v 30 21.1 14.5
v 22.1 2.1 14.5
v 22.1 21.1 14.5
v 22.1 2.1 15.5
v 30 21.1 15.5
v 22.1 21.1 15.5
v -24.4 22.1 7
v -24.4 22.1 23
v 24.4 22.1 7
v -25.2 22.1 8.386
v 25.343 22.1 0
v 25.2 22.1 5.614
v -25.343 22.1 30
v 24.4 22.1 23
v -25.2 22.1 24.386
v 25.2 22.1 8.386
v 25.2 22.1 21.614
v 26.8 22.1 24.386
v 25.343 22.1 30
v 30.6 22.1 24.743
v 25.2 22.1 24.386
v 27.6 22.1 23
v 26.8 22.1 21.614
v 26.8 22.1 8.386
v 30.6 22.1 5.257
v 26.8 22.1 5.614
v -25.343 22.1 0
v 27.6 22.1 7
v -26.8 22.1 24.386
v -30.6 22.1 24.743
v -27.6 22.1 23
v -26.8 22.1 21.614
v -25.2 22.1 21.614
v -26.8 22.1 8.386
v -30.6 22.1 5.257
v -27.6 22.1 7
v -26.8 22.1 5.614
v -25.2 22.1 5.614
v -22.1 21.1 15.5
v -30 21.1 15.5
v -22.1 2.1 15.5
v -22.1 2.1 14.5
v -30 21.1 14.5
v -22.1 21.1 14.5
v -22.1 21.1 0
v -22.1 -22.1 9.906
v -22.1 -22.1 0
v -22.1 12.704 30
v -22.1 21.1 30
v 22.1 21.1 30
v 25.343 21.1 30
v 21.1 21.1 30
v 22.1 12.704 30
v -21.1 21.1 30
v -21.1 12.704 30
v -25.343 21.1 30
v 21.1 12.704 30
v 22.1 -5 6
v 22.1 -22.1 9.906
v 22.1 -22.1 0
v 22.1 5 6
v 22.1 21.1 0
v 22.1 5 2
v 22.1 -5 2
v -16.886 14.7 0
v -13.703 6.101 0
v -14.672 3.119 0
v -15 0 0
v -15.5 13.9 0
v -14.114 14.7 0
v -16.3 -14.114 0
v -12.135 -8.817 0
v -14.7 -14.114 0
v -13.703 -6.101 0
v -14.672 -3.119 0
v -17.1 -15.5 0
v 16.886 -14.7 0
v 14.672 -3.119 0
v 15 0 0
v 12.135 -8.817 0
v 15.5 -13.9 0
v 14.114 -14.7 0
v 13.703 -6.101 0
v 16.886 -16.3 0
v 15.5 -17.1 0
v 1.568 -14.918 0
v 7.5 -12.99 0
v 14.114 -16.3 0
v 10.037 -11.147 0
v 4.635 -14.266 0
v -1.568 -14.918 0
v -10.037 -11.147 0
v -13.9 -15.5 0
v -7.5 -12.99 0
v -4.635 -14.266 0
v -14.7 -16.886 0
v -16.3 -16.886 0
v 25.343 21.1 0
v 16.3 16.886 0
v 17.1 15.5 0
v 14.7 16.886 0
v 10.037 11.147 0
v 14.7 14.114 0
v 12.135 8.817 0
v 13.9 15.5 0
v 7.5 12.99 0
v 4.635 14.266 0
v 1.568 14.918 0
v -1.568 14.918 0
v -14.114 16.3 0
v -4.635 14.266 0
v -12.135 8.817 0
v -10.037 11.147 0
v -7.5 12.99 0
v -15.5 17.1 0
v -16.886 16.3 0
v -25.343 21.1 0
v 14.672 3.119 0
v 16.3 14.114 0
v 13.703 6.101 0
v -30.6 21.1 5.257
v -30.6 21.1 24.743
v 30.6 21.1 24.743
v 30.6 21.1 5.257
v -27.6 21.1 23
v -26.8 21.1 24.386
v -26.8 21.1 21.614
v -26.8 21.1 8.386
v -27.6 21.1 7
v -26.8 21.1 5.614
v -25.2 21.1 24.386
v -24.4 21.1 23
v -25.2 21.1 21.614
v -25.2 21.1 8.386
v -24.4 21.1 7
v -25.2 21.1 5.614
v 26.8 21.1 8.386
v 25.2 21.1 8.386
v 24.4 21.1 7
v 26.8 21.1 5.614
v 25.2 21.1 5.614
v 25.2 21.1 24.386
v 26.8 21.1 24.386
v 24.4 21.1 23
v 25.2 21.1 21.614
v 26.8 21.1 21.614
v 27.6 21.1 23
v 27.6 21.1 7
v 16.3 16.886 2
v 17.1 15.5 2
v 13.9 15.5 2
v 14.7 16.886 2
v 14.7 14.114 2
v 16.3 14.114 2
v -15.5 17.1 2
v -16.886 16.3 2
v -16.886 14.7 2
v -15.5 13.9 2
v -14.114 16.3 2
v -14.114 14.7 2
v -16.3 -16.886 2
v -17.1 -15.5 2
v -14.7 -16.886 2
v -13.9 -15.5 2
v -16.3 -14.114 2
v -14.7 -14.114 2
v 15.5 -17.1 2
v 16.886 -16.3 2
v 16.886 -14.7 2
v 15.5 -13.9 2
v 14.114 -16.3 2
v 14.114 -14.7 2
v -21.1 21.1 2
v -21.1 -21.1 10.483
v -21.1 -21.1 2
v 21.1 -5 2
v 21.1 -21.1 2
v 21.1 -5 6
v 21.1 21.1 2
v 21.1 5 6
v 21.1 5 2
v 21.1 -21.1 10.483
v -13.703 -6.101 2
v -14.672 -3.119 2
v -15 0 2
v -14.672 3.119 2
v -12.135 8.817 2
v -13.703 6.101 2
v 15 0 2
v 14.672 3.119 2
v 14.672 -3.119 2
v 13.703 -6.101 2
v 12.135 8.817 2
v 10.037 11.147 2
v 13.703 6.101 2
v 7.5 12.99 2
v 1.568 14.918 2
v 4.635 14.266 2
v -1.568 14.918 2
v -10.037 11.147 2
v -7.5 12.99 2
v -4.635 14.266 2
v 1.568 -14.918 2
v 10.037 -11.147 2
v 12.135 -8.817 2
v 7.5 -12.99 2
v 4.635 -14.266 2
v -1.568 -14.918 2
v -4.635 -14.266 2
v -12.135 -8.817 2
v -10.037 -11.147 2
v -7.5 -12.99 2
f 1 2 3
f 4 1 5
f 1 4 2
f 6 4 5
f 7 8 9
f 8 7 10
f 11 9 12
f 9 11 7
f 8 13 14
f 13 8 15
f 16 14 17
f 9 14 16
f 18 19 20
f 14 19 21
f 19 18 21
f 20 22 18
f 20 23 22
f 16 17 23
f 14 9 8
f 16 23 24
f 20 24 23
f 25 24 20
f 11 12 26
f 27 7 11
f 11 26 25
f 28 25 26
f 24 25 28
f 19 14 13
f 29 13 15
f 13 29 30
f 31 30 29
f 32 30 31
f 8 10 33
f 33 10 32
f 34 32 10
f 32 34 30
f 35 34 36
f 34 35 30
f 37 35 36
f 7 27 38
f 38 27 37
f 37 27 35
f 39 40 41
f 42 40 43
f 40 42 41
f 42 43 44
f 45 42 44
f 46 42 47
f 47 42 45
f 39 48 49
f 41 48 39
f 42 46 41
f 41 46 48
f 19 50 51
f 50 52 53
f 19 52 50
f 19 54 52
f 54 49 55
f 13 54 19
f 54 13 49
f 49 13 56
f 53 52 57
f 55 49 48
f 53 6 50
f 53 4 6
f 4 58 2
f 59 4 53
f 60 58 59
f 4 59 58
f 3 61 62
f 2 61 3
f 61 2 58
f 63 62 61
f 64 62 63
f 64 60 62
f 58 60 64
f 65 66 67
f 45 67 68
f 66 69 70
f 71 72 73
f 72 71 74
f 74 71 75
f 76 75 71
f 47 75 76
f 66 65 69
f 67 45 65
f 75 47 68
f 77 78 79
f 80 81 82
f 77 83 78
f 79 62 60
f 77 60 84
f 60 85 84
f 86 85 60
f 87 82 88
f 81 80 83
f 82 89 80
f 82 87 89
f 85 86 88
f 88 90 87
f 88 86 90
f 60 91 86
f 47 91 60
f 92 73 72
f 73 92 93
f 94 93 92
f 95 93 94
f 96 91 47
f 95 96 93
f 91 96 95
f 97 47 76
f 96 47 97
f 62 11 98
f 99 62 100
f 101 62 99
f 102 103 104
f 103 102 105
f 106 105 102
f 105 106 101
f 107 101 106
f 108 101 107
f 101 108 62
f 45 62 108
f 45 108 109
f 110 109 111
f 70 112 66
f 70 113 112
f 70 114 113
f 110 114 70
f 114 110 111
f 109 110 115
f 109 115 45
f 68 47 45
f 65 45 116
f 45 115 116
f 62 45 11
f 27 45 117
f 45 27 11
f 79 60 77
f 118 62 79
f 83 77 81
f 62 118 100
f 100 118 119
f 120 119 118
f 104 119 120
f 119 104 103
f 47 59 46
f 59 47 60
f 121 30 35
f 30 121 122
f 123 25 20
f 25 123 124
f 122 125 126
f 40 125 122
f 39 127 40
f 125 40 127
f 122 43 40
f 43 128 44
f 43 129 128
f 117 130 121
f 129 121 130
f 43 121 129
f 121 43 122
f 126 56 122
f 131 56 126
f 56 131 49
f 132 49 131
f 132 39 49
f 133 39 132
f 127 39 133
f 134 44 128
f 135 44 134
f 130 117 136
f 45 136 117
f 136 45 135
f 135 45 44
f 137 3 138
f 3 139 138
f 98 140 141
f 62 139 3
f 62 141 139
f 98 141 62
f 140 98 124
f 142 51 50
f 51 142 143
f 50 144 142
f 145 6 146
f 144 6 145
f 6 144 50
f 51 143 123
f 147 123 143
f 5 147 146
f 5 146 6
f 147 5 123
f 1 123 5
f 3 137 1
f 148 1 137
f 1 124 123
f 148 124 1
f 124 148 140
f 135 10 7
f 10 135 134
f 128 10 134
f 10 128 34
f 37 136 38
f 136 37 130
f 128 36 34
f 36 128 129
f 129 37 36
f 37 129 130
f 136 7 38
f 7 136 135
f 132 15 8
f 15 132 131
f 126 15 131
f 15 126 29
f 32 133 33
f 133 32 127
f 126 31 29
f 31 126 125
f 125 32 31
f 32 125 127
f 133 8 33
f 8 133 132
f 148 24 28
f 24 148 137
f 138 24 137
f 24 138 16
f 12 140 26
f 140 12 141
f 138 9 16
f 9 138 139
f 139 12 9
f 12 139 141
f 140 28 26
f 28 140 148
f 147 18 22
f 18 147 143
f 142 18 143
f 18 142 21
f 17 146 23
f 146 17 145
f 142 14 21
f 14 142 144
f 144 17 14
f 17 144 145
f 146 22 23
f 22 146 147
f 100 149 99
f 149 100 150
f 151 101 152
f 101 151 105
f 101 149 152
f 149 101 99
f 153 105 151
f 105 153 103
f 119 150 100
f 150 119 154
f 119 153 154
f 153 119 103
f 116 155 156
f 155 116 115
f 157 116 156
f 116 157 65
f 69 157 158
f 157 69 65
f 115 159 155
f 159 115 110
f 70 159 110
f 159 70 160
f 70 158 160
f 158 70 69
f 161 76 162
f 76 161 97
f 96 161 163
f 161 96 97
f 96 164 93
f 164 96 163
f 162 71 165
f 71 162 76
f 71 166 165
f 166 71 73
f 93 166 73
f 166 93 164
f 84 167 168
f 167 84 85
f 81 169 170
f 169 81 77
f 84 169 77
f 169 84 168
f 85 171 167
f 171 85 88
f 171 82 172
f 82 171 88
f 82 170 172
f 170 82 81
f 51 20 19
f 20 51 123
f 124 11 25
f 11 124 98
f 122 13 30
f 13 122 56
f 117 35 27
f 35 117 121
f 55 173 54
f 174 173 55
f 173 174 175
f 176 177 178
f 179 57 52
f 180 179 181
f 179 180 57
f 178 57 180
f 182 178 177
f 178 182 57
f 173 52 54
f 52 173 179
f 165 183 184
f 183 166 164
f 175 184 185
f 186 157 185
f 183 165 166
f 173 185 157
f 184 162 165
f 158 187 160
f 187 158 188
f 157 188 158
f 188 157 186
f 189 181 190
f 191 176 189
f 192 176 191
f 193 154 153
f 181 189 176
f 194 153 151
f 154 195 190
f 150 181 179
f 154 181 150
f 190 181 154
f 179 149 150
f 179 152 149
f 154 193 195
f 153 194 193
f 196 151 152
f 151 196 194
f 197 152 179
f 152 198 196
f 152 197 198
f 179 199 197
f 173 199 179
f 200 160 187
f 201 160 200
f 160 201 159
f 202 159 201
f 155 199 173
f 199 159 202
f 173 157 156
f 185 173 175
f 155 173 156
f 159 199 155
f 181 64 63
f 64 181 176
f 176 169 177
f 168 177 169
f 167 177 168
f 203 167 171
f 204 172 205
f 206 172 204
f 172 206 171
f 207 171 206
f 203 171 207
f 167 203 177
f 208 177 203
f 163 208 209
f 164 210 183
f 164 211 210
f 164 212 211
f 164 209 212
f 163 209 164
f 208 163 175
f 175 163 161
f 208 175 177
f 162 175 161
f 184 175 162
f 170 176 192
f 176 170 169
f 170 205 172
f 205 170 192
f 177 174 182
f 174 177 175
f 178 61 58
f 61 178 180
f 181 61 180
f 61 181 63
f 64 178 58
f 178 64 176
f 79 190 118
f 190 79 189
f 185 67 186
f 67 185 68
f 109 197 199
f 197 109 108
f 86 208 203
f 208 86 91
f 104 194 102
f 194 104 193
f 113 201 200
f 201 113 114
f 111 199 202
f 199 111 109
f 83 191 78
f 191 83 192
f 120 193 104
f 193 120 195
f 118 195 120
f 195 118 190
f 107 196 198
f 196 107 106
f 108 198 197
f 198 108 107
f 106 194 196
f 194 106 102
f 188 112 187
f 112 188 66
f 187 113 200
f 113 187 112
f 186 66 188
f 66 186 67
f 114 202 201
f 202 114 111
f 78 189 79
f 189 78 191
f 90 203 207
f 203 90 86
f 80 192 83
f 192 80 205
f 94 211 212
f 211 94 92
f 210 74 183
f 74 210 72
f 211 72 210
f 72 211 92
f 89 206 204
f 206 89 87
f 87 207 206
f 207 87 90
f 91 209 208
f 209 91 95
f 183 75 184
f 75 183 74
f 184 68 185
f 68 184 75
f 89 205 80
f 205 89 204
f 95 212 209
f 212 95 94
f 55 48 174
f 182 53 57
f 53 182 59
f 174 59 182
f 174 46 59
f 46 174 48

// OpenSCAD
// $fa=0.5; // default minimum facet angle is now 0.5
// $fs=0.5; // default minimum facet size is now 0.5 mm

// % translate([0,0,19]) import("../inc/nema17.stl", convexity=3);

difference() {
    union() {
        translate([0,0,30/2]) cube([44.2,44.2,30], center=true);
        translate([0, (44.2/2)-(1.0/2), 30/2]) cube([44.2+17,1.0,30], center=true);
        for(i=[0,1]) mirror([i,0,0]) hull() {
            translate([(52/2),(44.2/2)-(1/2),30/2]) cube([8,1,1], center=true);
            translate([(44.2/2)-(1/2),(44.2/2)-(20/2),30/2]) cube([1,20,1], center=true);
        }
    }
    translate([0,0,(40/2)+2]) cube([44.2-2,44.2-2,40], center=true);
    translate([22,0,4]) cube([4,10,4], center=true);
    translate([0,0,1]) cylinder(d=30, h=3, center=true);
    # for(i=[-1,1]) for(j=[-1,1]) translate([i*52/2, (44.2/2)-(2/2), (30/2)+8*j]) rotate([90,0,0]) cylinder(d=3.2, h=4, center=true);
    # for (a=[0:90:359]) rotate([0,0,a]) translate([15.5,15.5,0]) cylinder(d=3.2, h=5, center=true);
    for(i=[0,1]) mirror([i,0,0]) for(i=[-1,1]) translate([(52/2)+(10/2),(44.2/2),(30/2)-(30/2*i)]) rotate([0,i*45,0]) cube([8,4,20], center=true);
    translate([0,-44.2/2,33]) rotate([30,0,0]) cube([44.2+10,60,40], center=true);
}
